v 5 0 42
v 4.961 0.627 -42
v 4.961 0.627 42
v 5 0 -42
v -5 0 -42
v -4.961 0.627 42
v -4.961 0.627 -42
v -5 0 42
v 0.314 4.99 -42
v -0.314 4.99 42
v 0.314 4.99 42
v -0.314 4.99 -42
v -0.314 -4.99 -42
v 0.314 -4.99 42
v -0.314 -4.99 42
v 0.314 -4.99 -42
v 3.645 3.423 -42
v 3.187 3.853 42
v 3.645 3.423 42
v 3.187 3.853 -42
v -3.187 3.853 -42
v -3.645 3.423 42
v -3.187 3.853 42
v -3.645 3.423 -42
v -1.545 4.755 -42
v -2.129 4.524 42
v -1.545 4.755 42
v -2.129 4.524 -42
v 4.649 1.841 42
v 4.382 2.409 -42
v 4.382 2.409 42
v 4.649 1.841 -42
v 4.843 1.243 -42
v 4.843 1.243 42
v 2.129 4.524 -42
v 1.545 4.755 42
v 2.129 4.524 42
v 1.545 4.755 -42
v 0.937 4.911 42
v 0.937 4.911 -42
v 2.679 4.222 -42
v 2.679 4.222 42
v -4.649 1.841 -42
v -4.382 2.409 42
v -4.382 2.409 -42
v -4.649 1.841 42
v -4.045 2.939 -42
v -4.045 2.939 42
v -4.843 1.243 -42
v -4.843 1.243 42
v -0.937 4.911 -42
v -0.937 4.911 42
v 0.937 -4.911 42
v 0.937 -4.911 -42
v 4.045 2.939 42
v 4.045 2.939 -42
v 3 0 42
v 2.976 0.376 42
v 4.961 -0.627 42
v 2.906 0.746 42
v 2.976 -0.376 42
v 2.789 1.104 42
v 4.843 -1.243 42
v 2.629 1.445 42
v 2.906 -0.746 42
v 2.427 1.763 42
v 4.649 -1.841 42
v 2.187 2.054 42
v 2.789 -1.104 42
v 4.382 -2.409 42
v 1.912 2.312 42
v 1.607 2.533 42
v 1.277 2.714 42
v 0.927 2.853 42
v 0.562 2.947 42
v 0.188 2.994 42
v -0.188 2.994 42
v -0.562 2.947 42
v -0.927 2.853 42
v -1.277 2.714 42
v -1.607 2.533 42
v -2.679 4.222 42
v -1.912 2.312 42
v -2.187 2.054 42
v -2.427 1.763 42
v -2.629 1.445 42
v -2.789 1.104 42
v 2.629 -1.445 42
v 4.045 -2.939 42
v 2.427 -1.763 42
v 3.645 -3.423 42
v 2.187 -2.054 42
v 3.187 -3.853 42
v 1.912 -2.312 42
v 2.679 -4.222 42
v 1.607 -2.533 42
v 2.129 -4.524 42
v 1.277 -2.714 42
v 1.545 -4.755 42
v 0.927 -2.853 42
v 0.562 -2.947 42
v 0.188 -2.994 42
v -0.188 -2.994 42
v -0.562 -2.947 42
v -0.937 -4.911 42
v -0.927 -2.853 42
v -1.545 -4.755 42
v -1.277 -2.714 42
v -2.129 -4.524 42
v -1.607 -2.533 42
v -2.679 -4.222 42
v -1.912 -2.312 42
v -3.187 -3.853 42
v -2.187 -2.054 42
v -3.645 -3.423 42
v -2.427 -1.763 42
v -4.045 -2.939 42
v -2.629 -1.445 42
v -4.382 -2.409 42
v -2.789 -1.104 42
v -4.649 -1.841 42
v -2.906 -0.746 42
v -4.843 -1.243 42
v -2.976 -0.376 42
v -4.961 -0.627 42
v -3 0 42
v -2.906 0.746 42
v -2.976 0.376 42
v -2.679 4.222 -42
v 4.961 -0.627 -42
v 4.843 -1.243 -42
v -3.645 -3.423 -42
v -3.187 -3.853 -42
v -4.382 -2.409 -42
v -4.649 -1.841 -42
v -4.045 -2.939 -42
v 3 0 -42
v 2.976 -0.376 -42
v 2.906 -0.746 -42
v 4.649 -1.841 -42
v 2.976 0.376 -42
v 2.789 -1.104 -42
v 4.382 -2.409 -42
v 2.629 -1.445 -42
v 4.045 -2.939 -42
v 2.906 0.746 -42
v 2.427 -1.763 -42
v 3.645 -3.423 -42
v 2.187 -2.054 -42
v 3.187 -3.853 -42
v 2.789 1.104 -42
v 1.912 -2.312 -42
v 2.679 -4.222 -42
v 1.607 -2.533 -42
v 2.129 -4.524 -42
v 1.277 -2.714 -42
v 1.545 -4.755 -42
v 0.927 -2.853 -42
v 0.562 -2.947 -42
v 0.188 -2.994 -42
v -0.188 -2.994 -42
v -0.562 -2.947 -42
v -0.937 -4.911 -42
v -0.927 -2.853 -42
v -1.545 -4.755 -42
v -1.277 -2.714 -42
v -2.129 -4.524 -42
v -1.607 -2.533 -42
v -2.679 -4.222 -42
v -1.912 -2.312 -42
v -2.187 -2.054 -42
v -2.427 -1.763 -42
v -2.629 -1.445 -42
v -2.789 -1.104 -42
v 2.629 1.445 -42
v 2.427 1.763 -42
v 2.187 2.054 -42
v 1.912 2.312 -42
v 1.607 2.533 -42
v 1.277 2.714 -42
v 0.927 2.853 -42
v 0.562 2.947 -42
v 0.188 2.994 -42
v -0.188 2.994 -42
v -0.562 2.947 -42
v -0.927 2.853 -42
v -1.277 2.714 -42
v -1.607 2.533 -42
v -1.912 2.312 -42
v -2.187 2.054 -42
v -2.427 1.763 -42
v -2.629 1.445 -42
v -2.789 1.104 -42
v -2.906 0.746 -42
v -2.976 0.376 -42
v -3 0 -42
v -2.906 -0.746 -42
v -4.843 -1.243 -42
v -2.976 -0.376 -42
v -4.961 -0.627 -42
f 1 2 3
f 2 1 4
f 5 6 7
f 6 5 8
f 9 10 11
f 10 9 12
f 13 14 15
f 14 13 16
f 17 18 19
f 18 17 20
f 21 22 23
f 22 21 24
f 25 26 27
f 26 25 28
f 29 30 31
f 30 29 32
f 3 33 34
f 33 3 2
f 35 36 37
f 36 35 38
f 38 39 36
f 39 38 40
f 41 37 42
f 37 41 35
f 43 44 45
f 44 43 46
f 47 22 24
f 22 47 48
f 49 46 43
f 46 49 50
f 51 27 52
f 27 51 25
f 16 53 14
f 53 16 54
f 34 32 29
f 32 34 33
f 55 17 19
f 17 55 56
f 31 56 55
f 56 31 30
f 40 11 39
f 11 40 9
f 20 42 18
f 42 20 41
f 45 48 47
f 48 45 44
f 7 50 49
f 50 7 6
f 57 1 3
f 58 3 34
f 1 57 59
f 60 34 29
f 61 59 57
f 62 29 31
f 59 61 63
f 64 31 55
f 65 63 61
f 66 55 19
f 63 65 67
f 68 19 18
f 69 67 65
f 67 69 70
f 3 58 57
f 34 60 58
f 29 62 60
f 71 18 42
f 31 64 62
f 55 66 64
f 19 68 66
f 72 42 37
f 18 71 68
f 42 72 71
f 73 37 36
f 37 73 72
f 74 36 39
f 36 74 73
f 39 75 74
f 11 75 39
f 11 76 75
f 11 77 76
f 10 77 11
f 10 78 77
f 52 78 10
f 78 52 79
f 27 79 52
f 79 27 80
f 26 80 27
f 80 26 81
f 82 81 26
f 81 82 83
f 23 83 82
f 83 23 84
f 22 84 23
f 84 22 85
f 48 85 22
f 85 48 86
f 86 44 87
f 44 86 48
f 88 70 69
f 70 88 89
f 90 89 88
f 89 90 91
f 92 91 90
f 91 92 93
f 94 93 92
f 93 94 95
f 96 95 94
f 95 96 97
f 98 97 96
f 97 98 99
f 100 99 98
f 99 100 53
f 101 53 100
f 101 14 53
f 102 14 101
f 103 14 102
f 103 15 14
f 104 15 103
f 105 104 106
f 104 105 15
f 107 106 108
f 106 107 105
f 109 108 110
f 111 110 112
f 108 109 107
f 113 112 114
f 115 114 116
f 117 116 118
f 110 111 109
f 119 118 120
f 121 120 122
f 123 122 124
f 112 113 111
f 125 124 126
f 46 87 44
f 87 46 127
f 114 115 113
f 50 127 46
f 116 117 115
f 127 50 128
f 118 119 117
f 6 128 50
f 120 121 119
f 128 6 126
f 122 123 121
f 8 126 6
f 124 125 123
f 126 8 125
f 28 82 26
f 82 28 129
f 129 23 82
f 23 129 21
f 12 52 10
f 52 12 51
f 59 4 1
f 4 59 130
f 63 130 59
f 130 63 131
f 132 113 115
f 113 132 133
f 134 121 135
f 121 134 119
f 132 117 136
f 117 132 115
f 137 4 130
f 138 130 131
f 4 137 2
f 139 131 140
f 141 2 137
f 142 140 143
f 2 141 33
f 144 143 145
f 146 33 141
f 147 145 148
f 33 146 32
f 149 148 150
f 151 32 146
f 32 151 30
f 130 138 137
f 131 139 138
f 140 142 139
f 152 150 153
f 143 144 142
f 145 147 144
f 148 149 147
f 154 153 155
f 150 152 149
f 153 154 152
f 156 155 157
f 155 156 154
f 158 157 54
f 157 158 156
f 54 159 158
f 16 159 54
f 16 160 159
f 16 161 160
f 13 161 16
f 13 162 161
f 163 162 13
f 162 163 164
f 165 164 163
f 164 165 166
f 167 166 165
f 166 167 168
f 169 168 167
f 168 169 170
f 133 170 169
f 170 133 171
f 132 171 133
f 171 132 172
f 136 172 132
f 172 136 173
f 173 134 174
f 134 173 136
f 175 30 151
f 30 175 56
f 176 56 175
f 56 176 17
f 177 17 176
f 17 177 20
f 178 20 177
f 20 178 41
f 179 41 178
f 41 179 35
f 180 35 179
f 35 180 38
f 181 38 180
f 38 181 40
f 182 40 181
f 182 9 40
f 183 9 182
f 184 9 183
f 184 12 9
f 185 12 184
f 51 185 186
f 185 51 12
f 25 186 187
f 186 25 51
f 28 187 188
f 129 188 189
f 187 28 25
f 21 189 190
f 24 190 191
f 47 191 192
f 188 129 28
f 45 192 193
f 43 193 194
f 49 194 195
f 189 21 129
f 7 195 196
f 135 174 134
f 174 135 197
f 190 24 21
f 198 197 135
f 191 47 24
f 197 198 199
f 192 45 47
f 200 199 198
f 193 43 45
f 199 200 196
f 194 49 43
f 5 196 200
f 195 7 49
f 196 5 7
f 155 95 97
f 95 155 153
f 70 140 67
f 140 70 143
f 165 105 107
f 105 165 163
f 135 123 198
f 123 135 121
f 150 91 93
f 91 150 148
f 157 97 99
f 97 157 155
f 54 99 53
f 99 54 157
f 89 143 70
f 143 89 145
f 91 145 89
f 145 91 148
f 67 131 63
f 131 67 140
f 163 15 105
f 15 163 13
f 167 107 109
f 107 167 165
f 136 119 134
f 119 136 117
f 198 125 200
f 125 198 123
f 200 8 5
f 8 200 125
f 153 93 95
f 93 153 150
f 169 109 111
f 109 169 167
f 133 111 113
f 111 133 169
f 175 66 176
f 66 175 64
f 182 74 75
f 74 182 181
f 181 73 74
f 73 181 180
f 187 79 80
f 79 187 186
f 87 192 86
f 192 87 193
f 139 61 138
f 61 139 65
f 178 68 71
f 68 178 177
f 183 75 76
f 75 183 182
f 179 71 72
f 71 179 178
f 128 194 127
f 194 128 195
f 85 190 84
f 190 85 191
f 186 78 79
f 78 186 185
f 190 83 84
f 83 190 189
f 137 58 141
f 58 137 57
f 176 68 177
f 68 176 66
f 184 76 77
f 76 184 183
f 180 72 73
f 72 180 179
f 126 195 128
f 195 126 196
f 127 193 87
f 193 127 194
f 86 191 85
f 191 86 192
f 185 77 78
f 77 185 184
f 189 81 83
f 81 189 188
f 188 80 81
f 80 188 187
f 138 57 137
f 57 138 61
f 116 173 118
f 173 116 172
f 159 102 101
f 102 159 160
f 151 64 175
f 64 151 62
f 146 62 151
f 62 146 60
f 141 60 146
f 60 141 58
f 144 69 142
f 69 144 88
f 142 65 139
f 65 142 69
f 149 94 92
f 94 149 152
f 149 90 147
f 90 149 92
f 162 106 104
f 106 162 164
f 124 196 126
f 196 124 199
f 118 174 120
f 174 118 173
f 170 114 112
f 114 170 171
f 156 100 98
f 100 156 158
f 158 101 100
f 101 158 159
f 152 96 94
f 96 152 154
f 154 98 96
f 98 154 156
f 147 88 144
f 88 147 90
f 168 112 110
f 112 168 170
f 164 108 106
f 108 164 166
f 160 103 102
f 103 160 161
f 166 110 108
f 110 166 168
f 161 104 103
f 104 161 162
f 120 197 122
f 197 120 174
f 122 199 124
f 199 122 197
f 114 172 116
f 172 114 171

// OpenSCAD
$fn = 50;


difference() {
	union() {
		translate(v = [0, 0, -42.0000000000]) {
			cylinder(h = 84, r = 5.0000000000);
		}
	}
	union() {
		translate(v = [0, 0, -100.0000000000]) {
			cylinder(h = 200, r = 3);
		}
	}
}
